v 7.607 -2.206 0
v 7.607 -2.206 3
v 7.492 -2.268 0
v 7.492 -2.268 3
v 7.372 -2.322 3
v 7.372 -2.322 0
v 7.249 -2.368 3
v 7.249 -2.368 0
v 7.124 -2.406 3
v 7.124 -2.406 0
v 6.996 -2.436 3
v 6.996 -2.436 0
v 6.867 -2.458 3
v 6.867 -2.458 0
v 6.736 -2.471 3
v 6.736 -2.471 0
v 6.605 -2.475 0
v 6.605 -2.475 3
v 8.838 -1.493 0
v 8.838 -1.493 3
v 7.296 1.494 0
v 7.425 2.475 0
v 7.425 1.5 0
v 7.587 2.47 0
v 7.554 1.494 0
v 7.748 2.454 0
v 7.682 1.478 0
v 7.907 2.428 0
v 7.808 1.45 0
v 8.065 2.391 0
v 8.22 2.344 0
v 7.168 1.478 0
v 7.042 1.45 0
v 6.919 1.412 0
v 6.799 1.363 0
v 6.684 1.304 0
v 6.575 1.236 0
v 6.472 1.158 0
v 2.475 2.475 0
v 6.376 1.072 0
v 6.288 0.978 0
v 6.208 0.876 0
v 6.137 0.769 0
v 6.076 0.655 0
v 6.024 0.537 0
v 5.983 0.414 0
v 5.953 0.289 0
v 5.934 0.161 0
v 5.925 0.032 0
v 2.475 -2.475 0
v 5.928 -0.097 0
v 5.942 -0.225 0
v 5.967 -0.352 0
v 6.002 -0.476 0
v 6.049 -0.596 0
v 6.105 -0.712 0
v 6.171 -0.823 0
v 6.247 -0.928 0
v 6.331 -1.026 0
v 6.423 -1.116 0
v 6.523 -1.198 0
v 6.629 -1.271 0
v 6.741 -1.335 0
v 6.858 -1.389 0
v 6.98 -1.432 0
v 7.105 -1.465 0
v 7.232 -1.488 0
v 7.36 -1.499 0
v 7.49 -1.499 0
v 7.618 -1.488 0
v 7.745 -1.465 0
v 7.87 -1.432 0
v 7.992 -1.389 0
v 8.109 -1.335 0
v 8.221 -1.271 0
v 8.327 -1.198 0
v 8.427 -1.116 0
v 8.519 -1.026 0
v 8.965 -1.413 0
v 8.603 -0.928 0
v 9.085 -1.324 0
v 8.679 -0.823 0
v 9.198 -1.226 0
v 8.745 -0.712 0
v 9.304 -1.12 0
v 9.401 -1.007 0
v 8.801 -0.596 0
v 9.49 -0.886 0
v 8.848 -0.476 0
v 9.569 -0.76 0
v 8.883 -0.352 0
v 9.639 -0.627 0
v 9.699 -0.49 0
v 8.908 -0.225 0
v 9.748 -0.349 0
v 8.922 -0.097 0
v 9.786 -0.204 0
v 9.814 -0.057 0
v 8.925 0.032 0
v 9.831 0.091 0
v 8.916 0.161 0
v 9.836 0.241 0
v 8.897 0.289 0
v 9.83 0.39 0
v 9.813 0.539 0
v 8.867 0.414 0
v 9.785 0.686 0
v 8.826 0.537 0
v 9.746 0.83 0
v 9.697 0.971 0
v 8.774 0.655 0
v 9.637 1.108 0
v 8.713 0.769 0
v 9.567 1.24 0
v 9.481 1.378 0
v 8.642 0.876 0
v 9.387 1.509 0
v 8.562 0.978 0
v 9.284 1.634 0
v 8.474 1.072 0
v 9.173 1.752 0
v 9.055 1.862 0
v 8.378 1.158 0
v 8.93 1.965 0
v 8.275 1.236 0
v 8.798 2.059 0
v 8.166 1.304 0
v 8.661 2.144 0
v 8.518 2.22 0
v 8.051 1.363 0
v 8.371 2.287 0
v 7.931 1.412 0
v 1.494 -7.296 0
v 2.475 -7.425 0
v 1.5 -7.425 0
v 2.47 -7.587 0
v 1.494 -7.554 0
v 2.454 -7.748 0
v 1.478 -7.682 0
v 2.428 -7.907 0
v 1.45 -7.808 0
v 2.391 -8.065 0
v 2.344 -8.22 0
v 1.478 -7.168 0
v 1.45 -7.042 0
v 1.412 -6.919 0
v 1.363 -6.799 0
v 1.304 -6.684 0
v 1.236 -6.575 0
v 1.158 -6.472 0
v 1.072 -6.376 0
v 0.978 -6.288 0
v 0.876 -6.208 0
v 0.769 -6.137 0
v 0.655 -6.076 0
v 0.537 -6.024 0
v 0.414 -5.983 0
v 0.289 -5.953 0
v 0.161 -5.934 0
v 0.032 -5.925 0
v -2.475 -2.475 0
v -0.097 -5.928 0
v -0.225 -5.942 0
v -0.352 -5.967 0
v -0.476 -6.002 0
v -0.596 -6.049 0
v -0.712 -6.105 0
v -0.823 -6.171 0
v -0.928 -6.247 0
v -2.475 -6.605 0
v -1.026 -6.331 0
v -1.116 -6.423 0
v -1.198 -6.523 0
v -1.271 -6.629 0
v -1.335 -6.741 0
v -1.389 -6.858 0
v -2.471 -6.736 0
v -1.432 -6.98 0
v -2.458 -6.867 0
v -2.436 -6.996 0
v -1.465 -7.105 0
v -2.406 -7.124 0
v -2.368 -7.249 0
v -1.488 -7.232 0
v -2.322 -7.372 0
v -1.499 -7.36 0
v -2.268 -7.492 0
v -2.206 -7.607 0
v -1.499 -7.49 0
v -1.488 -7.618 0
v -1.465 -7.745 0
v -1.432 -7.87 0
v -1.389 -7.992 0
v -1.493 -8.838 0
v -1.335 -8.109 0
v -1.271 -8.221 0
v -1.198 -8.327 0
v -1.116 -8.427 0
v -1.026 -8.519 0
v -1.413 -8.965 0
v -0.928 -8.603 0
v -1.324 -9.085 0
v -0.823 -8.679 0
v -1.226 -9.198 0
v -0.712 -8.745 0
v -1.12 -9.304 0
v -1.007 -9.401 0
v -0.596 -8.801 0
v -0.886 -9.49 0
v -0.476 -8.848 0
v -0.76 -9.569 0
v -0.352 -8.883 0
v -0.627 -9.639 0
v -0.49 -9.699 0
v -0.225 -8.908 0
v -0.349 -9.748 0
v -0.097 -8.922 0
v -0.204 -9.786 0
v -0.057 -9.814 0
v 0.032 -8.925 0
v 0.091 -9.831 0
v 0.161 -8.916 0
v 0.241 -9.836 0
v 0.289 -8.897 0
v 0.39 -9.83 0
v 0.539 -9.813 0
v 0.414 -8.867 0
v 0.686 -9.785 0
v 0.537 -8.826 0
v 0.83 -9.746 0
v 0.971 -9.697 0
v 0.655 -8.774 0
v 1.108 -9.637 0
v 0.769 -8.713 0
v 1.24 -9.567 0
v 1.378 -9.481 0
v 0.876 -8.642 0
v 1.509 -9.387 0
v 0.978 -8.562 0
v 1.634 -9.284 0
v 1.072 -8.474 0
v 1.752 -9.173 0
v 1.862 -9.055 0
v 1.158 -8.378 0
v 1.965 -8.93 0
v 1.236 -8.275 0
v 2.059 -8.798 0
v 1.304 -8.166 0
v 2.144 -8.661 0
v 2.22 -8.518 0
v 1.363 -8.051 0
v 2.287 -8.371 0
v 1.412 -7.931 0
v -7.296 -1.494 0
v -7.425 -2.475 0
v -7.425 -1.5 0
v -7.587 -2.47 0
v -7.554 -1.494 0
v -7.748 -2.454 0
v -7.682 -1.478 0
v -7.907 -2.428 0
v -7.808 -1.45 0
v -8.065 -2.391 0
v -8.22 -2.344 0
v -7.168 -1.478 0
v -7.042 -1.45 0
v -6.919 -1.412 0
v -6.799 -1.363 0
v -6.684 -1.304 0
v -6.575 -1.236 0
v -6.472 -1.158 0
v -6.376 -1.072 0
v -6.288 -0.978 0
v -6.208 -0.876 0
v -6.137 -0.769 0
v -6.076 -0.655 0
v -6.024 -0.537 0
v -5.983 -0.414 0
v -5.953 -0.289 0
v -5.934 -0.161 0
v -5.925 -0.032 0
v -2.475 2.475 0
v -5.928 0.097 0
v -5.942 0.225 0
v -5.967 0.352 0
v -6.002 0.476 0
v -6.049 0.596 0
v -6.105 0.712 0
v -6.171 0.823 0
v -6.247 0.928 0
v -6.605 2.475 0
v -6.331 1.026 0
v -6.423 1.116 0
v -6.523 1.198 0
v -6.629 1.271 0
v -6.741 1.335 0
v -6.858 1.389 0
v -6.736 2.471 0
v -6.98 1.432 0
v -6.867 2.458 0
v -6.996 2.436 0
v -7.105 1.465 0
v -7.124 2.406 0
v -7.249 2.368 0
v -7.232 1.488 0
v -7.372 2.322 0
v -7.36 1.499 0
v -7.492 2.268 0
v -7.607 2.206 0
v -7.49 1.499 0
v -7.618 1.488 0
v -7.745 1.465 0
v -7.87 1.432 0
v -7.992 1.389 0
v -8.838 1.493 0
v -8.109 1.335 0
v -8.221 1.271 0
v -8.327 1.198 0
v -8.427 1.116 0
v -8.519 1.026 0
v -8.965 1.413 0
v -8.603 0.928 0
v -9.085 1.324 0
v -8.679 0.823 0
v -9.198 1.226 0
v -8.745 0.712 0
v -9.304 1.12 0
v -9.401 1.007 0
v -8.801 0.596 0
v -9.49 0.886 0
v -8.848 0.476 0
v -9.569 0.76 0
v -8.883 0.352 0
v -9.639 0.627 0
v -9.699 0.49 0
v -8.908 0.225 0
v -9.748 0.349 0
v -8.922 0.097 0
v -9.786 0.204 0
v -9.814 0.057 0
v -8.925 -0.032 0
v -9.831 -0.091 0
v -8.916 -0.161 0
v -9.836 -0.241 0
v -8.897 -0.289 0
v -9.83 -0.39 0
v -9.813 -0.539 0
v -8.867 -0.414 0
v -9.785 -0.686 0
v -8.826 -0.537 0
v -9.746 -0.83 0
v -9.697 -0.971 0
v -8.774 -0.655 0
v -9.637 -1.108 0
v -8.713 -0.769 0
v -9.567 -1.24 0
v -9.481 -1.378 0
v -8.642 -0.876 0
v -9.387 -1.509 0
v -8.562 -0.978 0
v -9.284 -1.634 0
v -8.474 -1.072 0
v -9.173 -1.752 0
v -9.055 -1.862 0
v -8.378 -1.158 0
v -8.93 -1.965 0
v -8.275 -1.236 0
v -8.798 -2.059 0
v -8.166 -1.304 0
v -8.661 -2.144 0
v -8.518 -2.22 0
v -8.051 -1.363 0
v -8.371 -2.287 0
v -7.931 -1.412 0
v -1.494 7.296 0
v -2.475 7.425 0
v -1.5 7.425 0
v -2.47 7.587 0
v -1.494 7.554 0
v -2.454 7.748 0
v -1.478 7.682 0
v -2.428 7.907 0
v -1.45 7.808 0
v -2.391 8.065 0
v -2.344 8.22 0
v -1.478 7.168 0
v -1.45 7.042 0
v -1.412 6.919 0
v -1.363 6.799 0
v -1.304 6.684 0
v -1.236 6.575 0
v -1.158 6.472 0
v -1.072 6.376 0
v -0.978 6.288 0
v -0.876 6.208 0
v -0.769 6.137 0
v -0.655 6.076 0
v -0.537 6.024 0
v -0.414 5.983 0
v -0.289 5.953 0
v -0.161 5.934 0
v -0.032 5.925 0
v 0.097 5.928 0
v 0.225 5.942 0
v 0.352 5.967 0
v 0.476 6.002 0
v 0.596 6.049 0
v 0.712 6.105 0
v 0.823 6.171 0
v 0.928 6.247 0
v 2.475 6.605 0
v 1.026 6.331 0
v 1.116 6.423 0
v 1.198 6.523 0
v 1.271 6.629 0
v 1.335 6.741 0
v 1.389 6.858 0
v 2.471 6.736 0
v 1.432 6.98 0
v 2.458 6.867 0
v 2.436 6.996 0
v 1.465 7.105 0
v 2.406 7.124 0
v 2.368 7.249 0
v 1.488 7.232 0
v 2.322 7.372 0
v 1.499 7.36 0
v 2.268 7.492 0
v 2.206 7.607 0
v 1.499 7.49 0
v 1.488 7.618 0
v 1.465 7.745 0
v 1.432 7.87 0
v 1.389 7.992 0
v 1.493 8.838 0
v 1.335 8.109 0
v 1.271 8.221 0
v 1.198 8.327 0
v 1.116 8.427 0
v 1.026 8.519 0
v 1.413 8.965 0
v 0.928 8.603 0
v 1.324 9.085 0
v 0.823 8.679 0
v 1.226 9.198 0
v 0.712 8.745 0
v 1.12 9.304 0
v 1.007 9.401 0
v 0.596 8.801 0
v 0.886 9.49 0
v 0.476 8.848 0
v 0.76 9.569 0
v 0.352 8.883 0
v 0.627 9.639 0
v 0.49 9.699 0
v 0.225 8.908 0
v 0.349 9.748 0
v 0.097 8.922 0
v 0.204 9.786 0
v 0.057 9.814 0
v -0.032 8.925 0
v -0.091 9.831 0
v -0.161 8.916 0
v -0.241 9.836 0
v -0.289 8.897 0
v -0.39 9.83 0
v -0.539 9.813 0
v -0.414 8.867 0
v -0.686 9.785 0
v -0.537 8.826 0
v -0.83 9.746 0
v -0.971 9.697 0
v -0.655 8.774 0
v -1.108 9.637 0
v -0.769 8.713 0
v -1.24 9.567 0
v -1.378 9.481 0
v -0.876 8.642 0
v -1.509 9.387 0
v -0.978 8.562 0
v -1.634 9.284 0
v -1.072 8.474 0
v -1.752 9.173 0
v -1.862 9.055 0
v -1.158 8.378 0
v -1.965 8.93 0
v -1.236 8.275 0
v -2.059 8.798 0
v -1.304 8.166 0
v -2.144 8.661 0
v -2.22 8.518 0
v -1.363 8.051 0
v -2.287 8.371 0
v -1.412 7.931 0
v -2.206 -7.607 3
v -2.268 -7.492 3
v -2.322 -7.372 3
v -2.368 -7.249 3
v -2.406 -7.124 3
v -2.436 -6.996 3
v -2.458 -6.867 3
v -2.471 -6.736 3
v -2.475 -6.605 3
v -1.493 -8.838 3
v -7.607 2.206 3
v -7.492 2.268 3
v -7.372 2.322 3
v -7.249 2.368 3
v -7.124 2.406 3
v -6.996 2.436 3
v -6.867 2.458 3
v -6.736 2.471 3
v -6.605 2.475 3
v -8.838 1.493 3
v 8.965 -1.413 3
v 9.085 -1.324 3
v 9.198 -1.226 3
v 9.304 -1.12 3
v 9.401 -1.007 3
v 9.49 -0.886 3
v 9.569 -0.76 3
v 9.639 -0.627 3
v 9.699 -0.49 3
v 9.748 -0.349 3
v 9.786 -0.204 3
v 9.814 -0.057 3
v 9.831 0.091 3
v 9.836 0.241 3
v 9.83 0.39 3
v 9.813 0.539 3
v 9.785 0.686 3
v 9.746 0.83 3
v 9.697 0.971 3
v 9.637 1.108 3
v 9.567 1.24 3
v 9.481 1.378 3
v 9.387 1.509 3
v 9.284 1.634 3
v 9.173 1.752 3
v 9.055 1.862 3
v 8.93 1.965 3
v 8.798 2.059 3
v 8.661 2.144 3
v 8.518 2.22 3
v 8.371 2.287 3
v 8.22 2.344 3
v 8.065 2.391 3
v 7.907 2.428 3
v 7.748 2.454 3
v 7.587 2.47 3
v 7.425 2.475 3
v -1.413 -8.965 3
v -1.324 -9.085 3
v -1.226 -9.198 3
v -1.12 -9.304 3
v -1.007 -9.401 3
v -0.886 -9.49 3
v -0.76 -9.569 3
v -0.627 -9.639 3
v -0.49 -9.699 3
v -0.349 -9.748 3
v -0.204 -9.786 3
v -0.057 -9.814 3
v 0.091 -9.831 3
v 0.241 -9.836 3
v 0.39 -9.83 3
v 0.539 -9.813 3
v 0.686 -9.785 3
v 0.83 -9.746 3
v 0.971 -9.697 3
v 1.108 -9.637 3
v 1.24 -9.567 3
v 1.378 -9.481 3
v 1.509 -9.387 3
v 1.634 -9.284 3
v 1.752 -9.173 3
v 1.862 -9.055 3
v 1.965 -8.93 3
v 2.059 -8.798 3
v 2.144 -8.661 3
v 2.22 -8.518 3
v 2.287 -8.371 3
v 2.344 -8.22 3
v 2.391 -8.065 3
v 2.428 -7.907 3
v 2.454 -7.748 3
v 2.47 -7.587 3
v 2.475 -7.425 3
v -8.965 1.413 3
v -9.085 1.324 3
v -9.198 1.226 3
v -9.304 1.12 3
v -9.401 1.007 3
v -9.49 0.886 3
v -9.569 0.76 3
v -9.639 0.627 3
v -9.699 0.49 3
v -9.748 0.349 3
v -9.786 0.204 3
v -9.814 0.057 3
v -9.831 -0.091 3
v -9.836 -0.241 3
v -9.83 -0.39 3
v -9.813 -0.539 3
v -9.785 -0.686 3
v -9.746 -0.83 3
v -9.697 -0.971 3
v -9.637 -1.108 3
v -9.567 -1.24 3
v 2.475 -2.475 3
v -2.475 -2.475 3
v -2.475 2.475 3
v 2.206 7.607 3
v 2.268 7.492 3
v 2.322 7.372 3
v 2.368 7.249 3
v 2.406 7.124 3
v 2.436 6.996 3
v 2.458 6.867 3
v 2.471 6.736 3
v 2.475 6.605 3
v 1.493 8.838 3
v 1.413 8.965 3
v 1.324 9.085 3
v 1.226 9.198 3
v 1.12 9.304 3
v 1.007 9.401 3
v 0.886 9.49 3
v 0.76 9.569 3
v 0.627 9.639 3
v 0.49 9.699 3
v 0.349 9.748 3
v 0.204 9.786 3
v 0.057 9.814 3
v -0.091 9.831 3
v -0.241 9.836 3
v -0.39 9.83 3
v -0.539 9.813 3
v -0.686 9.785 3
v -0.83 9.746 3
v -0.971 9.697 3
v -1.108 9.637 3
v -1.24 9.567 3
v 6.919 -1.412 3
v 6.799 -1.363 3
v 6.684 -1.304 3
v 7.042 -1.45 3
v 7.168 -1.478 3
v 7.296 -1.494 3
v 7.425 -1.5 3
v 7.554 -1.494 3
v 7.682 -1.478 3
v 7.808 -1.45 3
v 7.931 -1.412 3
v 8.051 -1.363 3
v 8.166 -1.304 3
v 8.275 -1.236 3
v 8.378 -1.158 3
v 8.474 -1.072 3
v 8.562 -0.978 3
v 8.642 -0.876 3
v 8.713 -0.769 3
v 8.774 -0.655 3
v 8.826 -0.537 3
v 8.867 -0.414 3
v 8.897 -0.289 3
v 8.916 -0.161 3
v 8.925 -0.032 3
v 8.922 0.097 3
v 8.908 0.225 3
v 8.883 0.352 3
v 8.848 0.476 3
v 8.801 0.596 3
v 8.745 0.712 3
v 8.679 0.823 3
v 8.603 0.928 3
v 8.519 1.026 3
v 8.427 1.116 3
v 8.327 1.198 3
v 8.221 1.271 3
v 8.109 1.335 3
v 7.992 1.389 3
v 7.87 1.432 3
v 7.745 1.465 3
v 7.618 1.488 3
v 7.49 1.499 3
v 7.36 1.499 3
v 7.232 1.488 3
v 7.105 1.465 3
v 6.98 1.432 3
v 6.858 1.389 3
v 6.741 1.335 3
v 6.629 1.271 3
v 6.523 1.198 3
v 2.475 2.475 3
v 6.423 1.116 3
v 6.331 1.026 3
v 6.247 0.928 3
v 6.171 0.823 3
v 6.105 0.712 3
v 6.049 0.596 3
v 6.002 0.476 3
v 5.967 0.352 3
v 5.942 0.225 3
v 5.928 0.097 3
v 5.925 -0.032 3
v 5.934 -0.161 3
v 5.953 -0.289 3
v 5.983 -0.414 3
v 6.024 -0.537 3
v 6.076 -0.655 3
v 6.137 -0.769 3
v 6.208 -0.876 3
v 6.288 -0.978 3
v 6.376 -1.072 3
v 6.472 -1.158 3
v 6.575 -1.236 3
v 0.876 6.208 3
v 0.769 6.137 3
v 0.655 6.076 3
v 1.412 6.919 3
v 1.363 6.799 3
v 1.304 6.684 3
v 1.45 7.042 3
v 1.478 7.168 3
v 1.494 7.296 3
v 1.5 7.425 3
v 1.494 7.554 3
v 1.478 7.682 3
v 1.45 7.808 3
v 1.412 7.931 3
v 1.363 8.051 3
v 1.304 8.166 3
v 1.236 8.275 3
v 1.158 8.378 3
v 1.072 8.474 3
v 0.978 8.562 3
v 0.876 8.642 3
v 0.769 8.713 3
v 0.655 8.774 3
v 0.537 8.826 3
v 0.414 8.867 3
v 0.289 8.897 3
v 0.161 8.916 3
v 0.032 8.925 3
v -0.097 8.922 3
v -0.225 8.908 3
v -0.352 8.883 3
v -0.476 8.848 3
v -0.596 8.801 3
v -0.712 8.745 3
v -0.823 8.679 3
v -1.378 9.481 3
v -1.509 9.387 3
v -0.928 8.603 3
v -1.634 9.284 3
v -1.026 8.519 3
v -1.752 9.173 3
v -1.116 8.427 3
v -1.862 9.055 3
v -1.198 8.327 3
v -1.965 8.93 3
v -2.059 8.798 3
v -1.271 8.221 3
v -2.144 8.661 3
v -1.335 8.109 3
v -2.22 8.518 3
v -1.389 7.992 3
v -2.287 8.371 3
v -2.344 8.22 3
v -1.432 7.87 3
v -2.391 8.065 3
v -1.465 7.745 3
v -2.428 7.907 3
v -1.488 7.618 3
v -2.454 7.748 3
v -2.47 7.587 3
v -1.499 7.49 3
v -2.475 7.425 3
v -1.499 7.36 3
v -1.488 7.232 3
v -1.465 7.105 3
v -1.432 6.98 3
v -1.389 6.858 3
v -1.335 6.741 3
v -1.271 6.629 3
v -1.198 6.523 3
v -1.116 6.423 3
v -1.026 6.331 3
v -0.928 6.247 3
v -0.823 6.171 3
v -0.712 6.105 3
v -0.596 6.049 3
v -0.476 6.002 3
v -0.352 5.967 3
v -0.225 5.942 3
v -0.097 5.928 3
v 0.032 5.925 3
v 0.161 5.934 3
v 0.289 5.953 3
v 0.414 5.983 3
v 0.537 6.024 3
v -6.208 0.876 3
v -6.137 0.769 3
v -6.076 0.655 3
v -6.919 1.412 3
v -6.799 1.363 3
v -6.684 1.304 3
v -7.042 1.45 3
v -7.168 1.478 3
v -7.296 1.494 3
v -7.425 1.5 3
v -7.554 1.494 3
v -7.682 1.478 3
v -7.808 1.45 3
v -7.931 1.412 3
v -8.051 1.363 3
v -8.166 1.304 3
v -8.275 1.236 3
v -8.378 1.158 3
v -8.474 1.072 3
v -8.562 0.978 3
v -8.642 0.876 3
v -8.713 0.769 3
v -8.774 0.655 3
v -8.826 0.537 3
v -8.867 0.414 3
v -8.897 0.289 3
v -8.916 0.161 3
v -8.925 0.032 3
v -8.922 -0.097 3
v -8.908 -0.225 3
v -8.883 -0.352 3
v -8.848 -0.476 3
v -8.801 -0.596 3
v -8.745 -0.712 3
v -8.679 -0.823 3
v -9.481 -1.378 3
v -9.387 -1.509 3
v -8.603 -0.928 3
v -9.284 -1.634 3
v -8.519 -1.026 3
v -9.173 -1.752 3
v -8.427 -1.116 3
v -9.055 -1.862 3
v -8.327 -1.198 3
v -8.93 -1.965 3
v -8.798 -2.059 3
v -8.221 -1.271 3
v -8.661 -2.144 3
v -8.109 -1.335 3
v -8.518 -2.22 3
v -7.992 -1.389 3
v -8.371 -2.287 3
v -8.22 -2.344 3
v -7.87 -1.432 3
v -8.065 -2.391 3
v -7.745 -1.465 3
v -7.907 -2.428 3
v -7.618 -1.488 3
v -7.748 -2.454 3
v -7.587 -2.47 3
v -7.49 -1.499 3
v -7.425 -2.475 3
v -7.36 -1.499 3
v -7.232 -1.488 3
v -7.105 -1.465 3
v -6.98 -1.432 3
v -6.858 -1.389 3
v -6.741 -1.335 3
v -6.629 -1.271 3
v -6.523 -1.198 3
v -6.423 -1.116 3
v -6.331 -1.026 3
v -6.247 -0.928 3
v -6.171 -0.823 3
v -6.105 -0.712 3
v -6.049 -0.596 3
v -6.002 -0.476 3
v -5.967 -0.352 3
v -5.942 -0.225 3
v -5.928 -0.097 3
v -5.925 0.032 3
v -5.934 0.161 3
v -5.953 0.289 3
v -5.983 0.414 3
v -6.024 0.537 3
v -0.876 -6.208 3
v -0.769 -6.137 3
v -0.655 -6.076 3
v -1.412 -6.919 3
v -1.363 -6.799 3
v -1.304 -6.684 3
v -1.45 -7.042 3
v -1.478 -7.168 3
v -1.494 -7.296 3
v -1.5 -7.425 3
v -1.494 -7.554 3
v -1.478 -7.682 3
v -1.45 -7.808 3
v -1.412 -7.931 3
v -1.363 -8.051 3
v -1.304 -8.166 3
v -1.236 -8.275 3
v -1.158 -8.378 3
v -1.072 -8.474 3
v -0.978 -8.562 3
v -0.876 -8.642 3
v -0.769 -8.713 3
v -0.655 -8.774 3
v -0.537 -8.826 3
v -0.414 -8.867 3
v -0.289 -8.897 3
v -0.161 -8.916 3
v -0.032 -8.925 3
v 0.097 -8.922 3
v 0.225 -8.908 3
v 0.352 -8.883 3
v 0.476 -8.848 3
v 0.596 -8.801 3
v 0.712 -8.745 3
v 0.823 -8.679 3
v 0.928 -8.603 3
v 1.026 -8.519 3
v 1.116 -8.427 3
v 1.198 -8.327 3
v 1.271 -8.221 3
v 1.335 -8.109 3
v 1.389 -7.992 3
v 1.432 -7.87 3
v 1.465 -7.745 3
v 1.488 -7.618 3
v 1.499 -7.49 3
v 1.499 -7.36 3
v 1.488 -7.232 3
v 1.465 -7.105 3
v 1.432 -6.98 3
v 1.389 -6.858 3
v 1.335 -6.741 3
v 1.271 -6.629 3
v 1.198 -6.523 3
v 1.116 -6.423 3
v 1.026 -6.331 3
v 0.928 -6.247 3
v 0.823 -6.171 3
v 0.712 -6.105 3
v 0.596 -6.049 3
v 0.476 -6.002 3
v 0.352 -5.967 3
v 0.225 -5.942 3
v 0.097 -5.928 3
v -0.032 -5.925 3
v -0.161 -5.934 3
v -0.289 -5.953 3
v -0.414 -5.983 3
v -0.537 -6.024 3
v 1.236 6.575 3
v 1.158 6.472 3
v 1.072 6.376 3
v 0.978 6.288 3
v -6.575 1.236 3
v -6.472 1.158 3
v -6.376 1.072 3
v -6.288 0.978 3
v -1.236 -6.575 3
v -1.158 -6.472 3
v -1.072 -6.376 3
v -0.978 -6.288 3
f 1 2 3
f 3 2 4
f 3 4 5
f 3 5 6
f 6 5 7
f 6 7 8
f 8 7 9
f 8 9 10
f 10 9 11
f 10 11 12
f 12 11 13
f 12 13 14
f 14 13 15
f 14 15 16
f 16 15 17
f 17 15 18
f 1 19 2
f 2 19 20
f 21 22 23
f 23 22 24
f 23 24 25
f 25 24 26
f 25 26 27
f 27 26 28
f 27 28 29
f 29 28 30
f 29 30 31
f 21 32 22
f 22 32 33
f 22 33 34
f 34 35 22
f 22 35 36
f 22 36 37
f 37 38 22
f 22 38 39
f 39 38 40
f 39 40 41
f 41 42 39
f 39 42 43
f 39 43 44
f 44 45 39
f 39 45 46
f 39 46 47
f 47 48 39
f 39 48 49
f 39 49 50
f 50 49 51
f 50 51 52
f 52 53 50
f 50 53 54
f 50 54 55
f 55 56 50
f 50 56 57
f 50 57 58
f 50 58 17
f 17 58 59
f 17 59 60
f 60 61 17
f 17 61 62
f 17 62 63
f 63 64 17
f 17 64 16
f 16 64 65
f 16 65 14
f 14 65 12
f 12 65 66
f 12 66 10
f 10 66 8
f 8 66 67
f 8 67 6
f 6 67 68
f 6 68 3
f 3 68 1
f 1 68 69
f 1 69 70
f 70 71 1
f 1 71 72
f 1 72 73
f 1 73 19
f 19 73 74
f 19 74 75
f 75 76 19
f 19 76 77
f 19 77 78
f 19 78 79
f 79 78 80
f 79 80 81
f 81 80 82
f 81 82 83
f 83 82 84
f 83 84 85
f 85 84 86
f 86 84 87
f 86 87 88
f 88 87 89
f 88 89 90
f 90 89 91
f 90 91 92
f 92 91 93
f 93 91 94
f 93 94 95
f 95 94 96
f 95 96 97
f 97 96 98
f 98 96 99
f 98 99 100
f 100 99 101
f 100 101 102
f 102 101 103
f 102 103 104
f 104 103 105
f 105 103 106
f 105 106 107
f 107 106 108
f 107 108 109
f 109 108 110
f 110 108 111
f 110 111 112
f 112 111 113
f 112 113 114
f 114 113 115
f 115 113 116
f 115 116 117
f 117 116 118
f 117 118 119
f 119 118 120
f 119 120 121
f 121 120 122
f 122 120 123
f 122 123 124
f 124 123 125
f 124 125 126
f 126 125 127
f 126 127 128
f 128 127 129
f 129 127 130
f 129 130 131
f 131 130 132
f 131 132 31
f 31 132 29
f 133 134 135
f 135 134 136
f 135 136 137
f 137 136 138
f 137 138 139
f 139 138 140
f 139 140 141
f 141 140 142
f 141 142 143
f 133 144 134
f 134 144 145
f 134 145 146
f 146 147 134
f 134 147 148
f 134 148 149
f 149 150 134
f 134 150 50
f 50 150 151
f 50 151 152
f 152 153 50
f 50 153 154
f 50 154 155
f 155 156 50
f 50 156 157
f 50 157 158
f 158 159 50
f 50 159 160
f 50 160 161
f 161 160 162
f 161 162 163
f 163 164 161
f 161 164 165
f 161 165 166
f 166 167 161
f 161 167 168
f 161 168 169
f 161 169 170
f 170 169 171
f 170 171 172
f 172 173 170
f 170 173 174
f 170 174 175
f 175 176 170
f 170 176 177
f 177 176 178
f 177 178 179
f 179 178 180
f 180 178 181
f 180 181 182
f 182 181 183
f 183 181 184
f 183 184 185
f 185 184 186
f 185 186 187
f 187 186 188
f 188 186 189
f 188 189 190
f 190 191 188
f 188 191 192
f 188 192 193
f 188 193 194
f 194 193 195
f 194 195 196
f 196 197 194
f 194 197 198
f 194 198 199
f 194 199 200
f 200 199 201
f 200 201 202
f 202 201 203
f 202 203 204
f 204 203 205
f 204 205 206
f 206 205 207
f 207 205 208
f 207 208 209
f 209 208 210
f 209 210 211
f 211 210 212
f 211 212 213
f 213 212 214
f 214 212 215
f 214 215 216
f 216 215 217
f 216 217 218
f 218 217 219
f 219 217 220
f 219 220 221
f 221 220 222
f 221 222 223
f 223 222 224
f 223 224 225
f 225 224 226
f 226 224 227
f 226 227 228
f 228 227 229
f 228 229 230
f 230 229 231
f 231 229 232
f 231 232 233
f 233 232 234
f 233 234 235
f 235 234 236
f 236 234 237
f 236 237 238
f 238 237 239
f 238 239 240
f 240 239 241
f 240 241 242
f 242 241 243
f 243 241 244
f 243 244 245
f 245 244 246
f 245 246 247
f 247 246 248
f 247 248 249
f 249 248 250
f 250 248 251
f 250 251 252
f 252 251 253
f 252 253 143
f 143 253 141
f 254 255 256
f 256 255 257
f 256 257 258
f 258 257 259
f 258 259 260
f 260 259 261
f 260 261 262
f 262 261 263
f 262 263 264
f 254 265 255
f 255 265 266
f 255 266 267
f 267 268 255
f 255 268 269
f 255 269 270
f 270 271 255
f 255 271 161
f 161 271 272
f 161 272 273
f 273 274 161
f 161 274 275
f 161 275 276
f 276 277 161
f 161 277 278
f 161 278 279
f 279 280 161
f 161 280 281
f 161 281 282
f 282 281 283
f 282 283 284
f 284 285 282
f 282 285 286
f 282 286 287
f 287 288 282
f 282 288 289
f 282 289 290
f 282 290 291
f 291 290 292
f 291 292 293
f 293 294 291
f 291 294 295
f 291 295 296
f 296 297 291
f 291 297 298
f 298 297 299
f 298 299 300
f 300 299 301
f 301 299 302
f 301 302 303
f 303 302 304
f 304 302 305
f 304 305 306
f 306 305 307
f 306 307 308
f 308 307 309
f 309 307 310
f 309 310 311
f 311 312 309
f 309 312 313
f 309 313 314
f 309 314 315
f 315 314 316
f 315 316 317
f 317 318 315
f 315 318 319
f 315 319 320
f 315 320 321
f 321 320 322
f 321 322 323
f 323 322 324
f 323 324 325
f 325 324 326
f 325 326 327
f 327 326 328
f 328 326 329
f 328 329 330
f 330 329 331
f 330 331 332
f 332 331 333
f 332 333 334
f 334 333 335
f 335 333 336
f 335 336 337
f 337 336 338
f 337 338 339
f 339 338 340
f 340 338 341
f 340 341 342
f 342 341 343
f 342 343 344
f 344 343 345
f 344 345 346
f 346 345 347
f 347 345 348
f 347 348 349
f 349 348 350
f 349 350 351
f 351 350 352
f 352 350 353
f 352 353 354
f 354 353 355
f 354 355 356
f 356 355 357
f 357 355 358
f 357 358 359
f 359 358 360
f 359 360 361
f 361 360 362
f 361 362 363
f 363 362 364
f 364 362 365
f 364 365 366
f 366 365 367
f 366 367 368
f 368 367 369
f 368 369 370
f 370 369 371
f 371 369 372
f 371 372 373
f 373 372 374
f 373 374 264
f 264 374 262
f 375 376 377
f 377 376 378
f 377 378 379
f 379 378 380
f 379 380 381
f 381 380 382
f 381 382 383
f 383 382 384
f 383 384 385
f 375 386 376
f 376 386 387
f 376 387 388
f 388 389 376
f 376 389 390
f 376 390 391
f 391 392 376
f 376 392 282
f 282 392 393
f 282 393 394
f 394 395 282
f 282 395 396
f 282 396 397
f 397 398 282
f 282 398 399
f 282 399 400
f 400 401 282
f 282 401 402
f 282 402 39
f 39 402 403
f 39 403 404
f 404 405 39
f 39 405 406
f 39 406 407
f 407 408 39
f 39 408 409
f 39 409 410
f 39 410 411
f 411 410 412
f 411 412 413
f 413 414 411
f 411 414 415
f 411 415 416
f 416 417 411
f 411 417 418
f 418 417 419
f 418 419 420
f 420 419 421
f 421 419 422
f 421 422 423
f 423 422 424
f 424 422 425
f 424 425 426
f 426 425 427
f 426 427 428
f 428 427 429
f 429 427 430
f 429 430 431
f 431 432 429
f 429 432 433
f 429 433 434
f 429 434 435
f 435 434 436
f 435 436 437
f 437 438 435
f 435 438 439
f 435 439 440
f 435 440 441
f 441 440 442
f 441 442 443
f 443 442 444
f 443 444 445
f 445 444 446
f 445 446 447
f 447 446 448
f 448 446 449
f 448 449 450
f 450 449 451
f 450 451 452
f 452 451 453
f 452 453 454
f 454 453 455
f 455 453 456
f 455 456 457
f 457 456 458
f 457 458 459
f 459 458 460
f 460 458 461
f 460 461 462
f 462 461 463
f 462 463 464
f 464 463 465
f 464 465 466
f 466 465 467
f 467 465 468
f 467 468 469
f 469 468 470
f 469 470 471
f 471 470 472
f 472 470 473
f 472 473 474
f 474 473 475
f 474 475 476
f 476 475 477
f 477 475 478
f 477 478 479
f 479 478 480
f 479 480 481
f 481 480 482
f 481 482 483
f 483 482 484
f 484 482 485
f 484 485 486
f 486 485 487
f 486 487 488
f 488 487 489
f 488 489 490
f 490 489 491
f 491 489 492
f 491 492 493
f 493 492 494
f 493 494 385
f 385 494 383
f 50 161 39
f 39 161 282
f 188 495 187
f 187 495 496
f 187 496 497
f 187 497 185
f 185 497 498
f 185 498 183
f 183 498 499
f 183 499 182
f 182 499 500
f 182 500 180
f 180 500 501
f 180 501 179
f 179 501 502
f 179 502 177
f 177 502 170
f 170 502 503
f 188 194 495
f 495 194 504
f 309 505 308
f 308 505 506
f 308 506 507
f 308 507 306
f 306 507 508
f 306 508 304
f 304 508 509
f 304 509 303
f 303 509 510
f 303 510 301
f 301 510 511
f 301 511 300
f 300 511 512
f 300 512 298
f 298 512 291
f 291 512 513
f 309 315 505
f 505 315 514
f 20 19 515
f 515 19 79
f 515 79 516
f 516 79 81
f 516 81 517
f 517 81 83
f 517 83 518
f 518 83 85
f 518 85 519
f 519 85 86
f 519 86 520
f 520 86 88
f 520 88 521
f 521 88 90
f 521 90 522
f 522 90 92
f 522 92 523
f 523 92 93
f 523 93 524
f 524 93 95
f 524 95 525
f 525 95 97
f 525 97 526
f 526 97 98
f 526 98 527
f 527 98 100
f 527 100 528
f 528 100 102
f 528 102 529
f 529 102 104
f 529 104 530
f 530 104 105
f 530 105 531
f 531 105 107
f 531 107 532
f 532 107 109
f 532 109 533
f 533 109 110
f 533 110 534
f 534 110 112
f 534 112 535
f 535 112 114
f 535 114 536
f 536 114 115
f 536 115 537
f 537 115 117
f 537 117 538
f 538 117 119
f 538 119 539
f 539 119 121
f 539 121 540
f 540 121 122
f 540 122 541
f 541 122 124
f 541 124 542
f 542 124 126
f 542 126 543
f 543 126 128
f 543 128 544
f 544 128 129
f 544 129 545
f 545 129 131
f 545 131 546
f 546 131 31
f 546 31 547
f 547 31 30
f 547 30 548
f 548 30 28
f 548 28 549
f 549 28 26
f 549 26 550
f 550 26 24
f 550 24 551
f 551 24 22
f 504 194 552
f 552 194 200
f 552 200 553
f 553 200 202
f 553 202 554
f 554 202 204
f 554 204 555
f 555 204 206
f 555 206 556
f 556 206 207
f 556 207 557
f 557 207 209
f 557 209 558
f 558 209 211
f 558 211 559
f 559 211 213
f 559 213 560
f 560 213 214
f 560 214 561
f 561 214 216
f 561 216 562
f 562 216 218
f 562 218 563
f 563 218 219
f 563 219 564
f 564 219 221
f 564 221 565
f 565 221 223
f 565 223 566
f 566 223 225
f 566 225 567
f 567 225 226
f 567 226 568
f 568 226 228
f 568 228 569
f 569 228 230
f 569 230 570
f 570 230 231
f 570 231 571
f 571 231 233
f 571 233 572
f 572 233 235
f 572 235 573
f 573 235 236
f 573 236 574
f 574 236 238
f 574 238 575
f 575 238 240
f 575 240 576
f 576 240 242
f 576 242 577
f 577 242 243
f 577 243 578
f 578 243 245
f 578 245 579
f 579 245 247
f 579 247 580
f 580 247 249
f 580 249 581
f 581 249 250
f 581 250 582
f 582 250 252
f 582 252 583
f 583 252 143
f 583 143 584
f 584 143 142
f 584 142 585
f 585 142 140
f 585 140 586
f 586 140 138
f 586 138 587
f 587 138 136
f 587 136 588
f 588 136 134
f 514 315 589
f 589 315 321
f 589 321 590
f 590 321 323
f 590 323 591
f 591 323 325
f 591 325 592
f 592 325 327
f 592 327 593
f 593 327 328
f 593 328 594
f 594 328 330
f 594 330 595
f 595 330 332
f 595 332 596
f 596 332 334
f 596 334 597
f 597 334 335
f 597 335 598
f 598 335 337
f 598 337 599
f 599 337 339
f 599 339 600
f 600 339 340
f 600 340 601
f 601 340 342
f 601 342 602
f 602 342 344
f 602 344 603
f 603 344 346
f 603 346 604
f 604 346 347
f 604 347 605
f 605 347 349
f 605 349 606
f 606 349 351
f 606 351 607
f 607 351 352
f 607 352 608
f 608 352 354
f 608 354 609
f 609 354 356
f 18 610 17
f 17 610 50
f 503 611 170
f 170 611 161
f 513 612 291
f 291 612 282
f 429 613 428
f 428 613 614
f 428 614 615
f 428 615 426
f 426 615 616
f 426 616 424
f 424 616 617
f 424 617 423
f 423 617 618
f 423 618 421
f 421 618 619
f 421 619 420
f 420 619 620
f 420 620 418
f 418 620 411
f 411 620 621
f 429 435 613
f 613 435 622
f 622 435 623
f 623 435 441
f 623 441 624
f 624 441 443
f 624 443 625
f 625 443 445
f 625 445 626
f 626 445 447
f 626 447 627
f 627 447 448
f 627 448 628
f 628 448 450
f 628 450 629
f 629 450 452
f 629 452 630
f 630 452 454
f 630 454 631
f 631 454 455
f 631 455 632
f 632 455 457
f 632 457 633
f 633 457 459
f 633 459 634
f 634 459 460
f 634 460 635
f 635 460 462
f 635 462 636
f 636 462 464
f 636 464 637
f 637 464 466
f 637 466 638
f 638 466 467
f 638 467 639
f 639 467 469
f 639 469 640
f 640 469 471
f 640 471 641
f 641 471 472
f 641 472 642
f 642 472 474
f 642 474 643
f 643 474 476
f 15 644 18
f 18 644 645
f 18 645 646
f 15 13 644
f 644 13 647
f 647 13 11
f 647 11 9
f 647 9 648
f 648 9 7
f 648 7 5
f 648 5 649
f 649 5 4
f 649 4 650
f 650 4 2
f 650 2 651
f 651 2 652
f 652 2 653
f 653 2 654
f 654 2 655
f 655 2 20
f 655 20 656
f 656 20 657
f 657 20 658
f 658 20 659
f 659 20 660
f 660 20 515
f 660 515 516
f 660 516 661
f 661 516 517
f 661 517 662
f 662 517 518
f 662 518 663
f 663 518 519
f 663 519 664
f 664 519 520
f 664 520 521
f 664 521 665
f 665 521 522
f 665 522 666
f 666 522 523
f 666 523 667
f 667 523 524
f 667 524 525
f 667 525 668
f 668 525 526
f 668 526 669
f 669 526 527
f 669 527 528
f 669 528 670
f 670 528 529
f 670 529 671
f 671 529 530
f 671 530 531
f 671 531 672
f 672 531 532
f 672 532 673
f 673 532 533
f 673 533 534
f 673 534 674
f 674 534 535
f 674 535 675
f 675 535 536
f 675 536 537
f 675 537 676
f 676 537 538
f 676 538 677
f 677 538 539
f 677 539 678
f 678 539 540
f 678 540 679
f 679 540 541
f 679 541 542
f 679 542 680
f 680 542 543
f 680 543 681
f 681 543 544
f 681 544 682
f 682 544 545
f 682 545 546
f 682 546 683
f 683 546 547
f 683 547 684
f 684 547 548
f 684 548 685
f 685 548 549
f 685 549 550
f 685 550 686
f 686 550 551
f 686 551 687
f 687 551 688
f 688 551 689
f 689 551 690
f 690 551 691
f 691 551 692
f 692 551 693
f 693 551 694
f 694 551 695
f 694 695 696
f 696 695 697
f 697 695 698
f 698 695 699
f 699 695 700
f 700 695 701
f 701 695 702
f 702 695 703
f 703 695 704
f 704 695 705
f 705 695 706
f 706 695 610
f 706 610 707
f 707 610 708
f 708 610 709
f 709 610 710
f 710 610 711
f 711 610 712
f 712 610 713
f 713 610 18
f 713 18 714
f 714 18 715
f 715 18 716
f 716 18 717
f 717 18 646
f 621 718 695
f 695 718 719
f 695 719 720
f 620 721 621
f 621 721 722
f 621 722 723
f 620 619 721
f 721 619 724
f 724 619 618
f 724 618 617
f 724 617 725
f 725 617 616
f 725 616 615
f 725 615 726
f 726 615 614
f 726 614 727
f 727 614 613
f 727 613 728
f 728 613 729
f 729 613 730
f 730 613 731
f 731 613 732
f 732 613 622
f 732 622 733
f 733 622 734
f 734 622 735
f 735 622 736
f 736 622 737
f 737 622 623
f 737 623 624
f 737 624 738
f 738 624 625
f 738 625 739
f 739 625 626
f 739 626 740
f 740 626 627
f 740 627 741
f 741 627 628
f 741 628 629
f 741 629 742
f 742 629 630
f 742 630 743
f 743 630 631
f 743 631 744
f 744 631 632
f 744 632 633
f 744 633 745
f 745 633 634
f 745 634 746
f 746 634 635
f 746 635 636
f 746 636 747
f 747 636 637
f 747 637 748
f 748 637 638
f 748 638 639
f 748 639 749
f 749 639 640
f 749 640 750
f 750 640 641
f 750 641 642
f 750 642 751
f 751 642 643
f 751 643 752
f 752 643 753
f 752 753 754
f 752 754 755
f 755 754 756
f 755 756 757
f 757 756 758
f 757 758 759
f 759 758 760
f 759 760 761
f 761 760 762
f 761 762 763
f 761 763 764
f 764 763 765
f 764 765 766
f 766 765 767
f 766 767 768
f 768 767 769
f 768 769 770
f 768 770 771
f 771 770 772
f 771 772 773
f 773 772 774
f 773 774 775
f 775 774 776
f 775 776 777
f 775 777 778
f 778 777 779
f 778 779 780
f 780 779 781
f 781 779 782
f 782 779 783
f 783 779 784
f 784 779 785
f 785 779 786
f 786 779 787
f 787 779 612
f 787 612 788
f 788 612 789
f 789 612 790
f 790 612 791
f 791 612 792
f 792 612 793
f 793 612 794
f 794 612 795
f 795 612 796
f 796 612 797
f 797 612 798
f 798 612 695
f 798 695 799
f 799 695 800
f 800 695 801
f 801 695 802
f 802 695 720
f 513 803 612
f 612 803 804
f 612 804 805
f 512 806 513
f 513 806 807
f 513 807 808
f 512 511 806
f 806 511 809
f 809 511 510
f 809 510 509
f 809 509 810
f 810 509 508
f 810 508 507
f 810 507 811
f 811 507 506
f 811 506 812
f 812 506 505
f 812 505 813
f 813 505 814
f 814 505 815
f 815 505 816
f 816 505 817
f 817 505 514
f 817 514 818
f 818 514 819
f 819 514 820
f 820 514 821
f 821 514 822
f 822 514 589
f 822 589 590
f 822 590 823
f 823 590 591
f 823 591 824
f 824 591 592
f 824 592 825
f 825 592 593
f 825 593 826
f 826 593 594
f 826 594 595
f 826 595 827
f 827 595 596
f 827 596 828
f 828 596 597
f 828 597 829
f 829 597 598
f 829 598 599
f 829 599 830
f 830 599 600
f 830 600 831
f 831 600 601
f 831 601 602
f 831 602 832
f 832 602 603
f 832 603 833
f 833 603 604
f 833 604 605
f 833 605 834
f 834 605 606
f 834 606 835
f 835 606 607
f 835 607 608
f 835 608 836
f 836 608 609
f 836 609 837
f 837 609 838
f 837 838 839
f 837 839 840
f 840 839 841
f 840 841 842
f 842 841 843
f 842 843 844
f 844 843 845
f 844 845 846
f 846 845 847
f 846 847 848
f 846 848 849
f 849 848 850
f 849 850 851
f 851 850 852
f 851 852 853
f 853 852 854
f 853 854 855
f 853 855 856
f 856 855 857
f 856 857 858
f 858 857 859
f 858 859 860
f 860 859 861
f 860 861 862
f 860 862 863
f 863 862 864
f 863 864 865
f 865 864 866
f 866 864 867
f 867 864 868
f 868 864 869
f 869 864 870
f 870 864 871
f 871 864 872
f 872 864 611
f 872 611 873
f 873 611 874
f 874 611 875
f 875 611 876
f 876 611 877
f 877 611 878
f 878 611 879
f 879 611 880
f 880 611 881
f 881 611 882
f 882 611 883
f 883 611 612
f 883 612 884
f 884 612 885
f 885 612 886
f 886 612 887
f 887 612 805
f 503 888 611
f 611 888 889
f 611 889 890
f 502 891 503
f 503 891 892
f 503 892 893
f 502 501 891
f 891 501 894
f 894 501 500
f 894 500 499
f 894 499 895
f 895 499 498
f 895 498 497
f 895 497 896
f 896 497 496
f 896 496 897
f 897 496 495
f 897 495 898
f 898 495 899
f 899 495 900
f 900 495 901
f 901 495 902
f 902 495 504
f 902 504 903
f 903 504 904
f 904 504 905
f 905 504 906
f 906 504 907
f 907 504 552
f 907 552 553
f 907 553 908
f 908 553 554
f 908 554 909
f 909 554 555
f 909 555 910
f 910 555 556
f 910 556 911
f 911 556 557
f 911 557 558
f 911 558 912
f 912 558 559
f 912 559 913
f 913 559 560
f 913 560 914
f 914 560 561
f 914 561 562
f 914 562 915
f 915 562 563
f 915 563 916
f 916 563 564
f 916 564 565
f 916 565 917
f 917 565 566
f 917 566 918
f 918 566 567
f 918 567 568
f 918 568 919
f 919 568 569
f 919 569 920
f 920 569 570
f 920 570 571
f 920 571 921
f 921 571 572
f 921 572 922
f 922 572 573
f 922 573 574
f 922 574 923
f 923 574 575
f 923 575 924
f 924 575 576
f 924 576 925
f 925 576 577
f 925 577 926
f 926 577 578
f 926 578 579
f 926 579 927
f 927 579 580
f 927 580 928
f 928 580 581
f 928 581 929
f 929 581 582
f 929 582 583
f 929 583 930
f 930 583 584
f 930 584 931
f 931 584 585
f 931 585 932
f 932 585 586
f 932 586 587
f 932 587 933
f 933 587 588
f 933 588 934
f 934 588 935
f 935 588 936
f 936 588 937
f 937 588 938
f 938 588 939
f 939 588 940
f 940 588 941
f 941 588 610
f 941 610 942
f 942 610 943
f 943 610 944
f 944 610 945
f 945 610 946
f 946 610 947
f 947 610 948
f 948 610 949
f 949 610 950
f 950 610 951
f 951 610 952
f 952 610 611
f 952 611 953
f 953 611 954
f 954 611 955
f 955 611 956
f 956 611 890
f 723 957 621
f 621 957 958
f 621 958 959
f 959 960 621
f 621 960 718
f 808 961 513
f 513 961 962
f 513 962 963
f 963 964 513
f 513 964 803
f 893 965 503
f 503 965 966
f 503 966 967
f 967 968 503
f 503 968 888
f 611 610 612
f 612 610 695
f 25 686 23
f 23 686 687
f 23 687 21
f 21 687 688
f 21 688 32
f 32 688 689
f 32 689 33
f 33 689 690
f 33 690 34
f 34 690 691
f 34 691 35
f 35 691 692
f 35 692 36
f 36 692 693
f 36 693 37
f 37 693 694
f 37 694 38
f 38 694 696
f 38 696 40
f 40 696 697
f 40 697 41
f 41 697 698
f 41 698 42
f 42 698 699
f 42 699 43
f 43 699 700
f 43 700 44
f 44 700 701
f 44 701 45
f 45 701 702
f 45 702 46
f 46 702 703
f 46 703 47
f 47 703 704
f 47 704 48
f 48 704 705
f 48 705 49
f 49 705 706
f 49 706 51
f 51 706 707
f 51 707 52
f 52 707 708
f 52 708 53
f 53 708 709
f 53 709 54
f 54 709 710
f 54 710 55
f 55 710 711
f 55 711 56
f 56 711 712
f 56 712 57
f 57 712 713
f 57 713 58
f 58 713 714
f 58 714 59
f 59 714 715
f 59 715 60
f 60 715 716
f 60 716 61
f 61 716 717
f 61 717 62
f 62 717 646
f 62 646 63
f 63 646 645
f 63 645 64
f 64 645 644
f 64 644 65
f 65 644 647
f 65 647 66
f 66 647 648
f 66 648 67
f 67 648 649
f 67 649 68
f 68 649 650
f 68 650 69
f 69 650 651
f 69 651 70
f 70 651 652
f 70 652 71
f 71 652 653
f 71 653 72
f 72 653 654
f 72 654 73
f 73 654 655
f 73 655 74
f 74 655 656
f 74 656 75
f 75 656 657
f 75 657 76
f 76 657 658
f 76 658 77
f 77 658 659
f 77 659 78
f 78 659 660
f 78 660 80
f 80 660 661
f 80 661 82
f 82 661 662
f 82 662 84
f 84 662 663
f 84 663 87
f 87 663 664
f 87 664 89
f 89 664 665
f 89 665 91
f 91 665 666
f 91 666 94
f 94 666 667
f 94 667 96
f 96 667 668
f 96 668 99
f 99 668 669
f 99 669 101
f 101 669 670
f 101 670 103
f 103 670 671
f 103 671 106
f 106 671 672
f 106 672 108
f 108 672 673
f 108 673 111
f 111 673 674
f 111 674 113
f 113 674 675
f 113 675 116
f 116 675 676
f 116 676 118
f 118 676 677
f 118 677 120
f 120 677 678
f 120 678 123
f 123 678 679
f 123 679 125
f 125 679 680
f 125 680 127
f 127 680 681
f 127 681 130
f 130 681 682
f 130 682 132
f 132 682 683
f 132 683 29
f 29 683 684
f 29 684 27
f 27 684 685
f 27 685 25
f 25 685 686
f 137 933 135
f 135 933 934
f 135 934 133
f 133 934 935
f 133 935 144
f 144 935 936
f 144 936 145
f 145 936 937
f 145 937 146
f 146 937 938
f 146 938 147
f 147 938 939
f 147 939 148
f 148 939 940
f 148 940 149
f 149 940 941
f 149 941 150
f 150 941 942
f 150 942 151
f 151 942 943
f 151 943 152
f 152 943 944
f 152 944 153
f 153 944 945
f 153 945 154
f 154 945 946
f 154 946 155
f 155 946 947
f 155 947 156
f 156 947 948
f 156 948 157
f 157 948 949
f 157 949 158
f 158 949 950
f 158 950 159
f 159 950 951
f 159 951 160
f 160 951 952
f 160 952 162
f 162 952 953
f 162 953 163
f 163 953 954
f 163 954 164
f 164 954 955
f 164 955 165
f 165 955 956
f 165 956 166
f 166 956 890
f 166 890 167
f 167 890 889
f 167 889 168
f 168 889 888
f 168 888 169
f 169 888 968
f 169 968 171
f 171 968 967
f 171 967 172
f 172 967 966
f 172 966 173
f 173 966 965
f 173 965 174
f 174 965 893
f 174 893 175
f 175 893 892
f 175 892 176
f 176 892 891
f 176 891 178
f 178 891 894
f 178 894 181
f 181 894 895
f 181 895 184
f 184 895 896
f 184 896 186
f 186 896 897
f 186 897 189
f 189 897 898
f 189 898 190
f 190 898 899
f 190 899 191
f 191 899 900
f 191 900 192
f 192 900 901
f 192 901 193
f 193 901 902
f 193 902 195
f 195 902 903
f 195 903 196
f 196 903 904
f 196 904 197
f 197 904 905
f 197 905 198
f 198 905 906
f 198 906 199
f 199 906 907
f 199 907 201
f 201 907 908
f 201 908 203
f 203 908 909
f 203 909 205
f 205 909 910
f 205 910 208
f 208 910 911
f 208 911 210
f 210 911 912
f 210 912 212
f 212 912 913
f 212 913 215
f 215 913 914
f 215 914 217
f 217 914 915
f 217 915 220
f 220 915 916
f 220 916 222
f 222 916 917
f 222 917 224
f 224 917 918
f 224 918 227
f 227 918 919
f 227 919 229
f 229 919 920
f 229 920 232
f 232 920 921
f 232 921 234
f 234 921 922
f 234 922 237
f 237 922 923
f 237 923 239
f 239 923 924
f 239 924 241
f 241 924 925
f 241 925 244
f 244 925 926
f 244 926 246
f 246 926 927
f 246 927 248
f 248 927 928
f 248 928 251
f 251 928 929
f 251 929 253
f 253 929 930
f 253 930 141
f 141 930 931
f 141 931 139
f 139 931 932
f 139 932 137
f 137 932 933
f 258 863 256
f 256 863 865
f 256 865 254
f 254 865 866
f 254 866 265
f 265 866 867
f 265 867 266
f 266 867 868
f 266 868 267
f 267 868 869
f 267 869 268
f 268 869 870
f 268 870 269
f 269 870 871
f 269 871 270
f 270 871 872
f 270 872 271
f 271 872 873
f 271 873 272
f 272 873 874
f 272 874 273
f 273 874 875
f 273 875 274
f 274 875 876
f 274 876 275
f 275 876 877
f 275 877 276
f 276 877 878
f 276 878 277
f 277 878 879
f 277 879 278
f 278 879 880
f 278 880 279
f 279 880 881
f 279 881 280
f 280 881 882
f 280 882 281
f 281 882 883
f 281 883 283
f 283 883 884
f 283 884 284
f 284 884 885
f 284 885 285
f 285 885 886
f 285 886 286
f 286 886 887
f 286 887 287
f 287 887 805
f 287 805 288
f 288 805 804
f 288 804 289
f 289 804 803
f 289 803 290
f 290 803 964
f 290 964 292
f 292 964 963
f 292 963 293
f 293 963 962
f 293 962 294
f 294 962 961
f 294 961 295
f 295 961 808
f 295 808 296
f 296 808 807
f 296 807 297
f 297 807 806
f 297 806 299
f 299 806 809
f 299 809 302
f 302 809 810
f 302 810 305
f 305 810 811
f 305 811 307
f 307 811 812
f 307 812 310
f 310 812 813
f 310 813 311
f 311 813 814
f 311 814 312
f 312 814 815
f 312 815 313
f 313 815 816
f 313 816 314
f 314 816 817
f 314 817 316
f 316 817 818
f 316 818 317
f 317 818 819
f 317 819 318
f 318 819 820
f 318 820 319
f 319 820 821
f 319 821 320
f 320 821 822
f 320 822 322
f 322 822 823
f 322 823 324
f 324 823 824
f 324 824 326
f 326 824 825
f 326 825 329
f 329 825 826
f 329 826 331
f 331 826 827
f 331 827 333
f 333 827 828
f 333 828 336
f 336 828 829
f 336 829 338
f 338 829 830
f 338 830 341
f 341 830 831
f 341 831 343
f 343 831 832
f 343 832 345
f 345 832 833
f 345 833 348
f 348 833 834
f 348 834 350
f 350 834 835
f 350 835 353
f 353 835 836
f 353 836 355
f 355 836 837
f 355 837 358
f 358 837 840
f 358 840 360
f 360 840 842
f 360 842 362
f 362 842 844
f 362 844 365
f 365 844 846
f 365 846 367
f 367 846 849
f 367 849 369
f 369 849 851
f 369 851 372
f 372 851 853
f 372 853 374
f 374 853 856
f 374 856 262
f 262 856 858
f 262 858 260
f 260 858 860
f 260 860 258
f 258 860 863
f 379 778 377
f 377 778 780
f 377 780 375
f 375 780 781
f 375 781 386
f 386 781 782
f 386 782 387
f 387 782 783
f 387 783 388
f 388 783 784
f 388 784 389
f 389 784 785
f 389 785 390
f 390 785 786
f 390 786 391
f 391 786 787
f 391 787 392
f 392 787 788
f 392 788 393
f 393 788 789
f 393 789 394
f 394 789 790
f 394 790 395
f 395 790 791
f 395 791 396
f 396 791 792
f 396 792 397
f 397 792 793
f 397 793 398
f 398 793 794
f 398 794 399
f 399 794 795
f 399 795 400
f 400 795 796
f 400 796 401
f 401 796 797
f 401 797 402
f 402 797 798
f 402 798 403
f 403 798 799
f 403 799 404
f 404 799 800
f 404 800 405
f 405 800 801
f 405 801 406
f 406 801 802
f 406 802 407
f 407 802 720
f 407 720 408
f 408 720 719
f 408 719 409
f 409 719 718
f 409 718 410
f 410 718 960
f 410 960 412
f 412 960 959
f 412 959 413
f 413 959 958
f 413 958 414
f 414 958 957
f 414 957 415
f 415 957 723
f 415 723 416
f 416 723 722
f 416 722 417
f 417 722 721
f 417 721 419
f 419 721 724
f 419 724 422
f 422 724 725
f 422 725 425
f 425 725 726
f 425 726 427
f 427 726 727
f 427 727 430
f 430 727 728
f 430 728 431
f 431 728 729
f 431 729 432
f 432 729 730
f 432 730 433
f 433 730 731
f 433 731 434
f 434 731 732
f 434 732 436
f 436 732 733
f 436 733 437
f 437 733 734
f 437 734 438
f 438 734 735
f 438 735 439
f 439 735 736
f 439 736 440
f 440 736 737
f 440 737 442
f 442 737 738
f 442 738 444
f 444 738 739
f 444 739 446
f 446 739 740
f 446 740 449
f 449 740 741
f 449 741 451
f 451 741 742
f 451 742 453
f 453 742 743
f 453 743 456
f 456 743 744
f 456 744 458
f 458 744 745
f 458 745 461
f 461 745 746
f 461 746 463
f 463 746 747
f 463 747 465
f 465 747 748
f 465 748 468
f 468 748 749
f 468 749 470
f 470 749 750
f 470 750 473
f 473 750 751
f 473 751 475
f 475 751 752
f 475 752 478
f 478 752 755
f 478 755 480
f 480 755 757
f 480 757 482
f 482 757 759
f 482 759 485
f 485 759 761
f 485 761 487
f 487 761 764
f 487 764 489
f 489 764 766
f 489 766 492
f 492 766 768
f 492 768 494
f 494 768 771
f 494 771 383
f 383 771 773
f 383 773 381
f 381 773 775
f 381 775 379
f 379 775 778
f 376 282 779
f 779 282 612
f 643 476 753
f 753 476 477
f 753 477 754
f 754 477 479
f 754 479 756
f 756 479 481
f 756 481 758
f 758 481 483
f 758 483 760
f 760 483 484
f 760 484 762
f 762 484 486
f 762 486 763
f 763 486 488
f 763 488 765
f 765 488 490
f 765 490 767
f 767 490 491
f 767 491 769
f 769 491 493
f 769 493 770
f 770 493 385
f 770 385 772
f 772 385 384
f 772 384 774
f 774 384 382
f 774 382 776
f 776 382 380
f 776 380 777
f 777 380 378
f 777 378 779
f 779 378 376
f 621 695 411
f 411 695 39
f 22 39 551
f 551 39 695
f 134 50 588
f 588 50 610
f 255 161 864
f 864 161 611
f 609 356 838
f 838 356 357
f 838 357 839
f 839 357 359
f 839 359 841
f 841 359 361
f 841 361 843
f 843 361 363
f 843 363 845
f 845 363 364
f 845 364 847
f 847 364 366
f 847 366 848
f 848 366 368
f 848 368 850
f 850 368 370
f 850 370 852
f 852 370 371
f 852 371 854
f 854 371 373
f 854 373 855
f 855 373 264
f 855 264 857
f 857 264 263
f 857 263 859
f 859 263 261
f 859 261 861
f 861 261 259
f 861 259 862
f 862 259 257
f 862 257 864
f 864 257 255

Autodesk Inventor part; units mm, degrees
ref_plane "YZ Plane" through (0, 0, 0) normal (1, 0, 0) x (0, 1, 0)
ref_plane "XZ Plane" through (0, 0, 0) normal (0, 1, 0) x (-1, 0, 0)
ref_plane "XY Plane" through (0, 0, 0) normal (0, 0, 1) x (1, 0, 0)
sketch "스케치1" plane through (0, 0, 0) normal (0, 0, 1) x (1, 0, 0)
  circle A0 centre (0, 0) radius 9.9
  arc A1 (-2.475, 0) -> (2.475, 0) centre (0, 0) ccw
  arc A2 (2.475, 7.425) -> (-2.475, 7.425) centre (0, 7.425) ccw
  line L0 (-2.475, 7.425) -> (-2.475, 0)
  line L1 (2.475, 7.425) -> (2.475, 0)
  arc A3 (-7.425, 2.475) -> (-7.425, -2.475) centre (-7.425, 0) ccw
  line L2 (-7.425, 2.475) -> (0, 2.475)
  line L3 (-7.425, -2.475) -> (0, -2.475)
  arc A4 (0, -2.475) -> (0, 2.475) centre (0, 0) ccw
  arc A5 (-2.475, -7.425) -> (2.475, -7.425) centre (0, -7.425) ccw
  line L4 (-2.475, -7.425) -> (-2.475, 0)
  line L5 (2.475, -7.425) -> (2.475, 0)
  arc A6 (2.475, 0) -> (-2.475, 0) centre (0, 0) ccw
  arc A7 (7.425, -2.475) -> (7.425, 2.475) centre (7.425, 0) ccw
  line L6 (7.425, -2.475) -> (0, -2.475)
  line L7 (7.425, 2.475) -> (0, 2.475)
  arc A8 (0, 2.475) -> (0, -2.475) centre (0, 0) ccw
  point P0 (-2.475, 2.475)
  point P1 (-2.475, -2.475)
  point P2 (2.475, -2.475)
  point P3 (2.475, 2.475)
  dimension "d0" = 19.8
  dimension "d1" = 4.95
  dimension "d2" = 4.95
  dimension "d5" = 360
extrude "돌출1" add sketch "스케치1" along normal blind 3 contours A7 L6 L5 L1 L7 | A2 L1 L7 L2 L0 | A5 L4 L3 L6 L5 | A3 L2 L0 L4 L3 | L6 A1 L5 | L1 A4 L7 | L2 A6 L0 | L4 A1 L3 | A1 A6 A4
sketch "스케치2" plane through (0, 0, 3) normal (0, 0, 1) x (1, 0, 0)
  arc A0 (2.475, 7.425) -> (-2.475, 7.425) centre (0, 7.425) ccw projected
  circle A1 centre (0, 7.425) radius 1.5
  point P0 (0, 0)
  dimension "d9" = 3
extrude "돌출2" cut sketch "스케치2" against normal through all
pattern_circular "원형 패턴1" count 4 over 360 about axis through (0, 0, -10) along (0, 0, 1) of "돌출2"
sketch "스케치3" plane through (0, 0, 3) normal (0, 0, 1) x (1, 0, 0)
  arc A0 (2.475, 7.425) -> (-2.475, 7.425) centre (0, 7.425) ccw projected
  line L0 (1, 9.689) -> (2.475, 7.1422)
  line L1 (2.475, 2.475) -> (2.475, 7.425) projected
  circle A1 centre (0, 7.425) radius 1.5 projected
  point P0 (0, 0)
  dimension "d15" = 0.5
  dimension "d16" = 1
extrude "돌출3" cut sketch "스케치3" against normal through all contours L1 L0 A0
fillet "모깎기1" radius 2 1 edges at (1, 9.689, 1.5)
fillet "모깎기2" radius 2 1 edges at (2.475, 7.1422, 1.5)
pattern_circular "원형 패턴2" count 4 over 360 about axis through (0, 0, -10) along (0, 0, 1) of "돌출3", "모깎기1", "모깎기2"
equation "\"d1\" = 0.25 * d0"
equation "\"d2\" = d1"
properties part number "ModuleConnector_Center_Axis_3D 인쇄"
